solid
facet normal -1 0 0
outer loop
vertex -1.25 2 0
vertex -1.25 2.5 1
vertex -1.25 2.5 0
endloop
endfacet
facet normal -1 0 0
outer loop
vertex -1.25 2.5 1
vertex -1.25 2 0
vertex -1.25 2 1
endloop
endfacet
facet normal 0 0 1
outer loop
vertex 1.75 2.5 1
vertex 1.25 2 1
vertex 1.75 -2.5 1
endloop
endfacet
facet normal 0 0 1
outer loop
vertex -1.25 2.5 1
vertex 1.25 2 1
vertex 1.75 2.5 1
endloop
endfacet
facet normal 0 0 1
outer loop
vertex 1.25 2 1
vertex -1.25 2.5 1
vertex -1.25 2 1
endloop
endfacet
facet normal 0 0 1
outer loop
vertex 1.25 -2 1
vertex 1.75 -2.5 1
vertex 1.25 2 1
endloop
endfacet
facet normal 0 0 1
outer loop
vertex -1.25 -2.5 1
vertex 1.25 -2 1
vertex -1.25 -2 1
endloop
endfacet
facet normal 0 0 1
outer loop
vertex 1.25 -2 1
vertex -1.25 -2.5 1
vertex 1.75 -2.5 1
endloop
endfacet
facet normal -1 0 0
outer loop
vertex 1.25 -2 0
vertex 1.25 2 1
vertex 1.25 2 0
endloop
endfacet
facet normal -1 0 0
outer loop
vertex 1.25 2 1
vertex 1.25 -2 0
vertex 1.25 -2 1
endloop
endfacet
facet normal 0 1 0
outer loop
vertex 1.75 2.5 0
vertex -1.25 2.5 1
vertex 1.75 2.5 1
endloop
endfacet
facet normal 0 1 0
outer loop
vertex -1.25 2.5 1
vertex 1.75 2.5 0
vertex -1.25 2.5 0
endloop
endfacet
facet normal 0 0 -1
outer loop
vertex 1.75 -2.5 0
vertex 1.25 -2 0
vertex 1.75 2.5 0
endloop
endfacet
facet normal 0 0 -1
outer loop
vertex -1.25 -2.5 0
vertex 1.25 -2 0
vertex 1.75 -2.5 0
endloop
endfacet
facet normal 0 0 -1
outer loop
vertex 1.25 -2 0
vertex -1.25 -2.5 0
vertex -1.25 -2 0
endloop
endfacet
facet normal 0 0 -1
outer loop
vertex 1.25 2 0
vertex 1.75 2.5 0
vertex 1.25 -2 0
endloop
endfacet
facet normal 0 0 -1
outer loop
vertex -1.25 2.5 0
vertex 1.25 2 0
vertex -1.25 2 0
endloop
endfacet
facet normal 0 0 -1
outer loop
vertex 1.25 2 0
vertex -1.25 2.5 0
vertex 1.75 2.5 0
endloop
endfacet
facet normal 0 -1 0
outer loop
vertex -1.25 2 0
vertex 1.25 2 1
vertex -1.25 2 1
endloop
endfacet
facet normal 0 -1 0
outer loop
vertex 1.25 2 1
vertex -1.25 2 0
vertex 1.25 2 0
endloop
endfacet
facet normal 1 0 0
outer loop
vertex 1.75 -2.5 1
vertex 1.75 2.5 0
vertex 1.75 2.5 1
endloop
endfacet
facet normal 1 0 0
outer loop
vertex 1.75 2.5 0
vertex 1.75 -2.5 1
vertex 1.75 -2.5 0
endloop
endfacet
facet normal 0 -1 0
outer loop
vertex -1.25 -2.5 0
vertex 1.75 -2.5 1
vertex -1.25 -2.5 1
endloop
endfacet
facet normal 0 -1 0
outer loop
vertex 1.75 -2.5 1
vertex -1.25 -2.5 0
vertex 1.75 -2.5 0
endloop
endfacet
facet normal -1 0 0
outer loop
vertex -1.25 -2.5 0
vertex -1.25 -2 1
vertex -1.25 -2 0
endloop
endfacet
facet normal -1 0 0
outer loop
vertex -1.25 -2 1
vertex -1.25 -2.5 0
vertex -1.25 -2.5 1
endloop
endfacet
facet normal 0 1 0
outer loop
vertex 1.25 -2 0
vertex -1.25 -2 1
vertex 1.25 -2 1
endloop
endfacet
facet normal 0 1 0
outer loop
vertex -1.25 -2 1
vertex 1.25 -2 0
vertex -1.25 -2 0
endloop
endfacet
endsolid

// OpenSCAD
translate([-1.25,2,0])
{
cube([2.5,0.5,1]);
}
translate([1.25,-2.5,0])
{
    cube([0.5,5,1]);
}
translate([-1.25,-2.5,0])
{
    cube([2.5,0.5,1]);
}
